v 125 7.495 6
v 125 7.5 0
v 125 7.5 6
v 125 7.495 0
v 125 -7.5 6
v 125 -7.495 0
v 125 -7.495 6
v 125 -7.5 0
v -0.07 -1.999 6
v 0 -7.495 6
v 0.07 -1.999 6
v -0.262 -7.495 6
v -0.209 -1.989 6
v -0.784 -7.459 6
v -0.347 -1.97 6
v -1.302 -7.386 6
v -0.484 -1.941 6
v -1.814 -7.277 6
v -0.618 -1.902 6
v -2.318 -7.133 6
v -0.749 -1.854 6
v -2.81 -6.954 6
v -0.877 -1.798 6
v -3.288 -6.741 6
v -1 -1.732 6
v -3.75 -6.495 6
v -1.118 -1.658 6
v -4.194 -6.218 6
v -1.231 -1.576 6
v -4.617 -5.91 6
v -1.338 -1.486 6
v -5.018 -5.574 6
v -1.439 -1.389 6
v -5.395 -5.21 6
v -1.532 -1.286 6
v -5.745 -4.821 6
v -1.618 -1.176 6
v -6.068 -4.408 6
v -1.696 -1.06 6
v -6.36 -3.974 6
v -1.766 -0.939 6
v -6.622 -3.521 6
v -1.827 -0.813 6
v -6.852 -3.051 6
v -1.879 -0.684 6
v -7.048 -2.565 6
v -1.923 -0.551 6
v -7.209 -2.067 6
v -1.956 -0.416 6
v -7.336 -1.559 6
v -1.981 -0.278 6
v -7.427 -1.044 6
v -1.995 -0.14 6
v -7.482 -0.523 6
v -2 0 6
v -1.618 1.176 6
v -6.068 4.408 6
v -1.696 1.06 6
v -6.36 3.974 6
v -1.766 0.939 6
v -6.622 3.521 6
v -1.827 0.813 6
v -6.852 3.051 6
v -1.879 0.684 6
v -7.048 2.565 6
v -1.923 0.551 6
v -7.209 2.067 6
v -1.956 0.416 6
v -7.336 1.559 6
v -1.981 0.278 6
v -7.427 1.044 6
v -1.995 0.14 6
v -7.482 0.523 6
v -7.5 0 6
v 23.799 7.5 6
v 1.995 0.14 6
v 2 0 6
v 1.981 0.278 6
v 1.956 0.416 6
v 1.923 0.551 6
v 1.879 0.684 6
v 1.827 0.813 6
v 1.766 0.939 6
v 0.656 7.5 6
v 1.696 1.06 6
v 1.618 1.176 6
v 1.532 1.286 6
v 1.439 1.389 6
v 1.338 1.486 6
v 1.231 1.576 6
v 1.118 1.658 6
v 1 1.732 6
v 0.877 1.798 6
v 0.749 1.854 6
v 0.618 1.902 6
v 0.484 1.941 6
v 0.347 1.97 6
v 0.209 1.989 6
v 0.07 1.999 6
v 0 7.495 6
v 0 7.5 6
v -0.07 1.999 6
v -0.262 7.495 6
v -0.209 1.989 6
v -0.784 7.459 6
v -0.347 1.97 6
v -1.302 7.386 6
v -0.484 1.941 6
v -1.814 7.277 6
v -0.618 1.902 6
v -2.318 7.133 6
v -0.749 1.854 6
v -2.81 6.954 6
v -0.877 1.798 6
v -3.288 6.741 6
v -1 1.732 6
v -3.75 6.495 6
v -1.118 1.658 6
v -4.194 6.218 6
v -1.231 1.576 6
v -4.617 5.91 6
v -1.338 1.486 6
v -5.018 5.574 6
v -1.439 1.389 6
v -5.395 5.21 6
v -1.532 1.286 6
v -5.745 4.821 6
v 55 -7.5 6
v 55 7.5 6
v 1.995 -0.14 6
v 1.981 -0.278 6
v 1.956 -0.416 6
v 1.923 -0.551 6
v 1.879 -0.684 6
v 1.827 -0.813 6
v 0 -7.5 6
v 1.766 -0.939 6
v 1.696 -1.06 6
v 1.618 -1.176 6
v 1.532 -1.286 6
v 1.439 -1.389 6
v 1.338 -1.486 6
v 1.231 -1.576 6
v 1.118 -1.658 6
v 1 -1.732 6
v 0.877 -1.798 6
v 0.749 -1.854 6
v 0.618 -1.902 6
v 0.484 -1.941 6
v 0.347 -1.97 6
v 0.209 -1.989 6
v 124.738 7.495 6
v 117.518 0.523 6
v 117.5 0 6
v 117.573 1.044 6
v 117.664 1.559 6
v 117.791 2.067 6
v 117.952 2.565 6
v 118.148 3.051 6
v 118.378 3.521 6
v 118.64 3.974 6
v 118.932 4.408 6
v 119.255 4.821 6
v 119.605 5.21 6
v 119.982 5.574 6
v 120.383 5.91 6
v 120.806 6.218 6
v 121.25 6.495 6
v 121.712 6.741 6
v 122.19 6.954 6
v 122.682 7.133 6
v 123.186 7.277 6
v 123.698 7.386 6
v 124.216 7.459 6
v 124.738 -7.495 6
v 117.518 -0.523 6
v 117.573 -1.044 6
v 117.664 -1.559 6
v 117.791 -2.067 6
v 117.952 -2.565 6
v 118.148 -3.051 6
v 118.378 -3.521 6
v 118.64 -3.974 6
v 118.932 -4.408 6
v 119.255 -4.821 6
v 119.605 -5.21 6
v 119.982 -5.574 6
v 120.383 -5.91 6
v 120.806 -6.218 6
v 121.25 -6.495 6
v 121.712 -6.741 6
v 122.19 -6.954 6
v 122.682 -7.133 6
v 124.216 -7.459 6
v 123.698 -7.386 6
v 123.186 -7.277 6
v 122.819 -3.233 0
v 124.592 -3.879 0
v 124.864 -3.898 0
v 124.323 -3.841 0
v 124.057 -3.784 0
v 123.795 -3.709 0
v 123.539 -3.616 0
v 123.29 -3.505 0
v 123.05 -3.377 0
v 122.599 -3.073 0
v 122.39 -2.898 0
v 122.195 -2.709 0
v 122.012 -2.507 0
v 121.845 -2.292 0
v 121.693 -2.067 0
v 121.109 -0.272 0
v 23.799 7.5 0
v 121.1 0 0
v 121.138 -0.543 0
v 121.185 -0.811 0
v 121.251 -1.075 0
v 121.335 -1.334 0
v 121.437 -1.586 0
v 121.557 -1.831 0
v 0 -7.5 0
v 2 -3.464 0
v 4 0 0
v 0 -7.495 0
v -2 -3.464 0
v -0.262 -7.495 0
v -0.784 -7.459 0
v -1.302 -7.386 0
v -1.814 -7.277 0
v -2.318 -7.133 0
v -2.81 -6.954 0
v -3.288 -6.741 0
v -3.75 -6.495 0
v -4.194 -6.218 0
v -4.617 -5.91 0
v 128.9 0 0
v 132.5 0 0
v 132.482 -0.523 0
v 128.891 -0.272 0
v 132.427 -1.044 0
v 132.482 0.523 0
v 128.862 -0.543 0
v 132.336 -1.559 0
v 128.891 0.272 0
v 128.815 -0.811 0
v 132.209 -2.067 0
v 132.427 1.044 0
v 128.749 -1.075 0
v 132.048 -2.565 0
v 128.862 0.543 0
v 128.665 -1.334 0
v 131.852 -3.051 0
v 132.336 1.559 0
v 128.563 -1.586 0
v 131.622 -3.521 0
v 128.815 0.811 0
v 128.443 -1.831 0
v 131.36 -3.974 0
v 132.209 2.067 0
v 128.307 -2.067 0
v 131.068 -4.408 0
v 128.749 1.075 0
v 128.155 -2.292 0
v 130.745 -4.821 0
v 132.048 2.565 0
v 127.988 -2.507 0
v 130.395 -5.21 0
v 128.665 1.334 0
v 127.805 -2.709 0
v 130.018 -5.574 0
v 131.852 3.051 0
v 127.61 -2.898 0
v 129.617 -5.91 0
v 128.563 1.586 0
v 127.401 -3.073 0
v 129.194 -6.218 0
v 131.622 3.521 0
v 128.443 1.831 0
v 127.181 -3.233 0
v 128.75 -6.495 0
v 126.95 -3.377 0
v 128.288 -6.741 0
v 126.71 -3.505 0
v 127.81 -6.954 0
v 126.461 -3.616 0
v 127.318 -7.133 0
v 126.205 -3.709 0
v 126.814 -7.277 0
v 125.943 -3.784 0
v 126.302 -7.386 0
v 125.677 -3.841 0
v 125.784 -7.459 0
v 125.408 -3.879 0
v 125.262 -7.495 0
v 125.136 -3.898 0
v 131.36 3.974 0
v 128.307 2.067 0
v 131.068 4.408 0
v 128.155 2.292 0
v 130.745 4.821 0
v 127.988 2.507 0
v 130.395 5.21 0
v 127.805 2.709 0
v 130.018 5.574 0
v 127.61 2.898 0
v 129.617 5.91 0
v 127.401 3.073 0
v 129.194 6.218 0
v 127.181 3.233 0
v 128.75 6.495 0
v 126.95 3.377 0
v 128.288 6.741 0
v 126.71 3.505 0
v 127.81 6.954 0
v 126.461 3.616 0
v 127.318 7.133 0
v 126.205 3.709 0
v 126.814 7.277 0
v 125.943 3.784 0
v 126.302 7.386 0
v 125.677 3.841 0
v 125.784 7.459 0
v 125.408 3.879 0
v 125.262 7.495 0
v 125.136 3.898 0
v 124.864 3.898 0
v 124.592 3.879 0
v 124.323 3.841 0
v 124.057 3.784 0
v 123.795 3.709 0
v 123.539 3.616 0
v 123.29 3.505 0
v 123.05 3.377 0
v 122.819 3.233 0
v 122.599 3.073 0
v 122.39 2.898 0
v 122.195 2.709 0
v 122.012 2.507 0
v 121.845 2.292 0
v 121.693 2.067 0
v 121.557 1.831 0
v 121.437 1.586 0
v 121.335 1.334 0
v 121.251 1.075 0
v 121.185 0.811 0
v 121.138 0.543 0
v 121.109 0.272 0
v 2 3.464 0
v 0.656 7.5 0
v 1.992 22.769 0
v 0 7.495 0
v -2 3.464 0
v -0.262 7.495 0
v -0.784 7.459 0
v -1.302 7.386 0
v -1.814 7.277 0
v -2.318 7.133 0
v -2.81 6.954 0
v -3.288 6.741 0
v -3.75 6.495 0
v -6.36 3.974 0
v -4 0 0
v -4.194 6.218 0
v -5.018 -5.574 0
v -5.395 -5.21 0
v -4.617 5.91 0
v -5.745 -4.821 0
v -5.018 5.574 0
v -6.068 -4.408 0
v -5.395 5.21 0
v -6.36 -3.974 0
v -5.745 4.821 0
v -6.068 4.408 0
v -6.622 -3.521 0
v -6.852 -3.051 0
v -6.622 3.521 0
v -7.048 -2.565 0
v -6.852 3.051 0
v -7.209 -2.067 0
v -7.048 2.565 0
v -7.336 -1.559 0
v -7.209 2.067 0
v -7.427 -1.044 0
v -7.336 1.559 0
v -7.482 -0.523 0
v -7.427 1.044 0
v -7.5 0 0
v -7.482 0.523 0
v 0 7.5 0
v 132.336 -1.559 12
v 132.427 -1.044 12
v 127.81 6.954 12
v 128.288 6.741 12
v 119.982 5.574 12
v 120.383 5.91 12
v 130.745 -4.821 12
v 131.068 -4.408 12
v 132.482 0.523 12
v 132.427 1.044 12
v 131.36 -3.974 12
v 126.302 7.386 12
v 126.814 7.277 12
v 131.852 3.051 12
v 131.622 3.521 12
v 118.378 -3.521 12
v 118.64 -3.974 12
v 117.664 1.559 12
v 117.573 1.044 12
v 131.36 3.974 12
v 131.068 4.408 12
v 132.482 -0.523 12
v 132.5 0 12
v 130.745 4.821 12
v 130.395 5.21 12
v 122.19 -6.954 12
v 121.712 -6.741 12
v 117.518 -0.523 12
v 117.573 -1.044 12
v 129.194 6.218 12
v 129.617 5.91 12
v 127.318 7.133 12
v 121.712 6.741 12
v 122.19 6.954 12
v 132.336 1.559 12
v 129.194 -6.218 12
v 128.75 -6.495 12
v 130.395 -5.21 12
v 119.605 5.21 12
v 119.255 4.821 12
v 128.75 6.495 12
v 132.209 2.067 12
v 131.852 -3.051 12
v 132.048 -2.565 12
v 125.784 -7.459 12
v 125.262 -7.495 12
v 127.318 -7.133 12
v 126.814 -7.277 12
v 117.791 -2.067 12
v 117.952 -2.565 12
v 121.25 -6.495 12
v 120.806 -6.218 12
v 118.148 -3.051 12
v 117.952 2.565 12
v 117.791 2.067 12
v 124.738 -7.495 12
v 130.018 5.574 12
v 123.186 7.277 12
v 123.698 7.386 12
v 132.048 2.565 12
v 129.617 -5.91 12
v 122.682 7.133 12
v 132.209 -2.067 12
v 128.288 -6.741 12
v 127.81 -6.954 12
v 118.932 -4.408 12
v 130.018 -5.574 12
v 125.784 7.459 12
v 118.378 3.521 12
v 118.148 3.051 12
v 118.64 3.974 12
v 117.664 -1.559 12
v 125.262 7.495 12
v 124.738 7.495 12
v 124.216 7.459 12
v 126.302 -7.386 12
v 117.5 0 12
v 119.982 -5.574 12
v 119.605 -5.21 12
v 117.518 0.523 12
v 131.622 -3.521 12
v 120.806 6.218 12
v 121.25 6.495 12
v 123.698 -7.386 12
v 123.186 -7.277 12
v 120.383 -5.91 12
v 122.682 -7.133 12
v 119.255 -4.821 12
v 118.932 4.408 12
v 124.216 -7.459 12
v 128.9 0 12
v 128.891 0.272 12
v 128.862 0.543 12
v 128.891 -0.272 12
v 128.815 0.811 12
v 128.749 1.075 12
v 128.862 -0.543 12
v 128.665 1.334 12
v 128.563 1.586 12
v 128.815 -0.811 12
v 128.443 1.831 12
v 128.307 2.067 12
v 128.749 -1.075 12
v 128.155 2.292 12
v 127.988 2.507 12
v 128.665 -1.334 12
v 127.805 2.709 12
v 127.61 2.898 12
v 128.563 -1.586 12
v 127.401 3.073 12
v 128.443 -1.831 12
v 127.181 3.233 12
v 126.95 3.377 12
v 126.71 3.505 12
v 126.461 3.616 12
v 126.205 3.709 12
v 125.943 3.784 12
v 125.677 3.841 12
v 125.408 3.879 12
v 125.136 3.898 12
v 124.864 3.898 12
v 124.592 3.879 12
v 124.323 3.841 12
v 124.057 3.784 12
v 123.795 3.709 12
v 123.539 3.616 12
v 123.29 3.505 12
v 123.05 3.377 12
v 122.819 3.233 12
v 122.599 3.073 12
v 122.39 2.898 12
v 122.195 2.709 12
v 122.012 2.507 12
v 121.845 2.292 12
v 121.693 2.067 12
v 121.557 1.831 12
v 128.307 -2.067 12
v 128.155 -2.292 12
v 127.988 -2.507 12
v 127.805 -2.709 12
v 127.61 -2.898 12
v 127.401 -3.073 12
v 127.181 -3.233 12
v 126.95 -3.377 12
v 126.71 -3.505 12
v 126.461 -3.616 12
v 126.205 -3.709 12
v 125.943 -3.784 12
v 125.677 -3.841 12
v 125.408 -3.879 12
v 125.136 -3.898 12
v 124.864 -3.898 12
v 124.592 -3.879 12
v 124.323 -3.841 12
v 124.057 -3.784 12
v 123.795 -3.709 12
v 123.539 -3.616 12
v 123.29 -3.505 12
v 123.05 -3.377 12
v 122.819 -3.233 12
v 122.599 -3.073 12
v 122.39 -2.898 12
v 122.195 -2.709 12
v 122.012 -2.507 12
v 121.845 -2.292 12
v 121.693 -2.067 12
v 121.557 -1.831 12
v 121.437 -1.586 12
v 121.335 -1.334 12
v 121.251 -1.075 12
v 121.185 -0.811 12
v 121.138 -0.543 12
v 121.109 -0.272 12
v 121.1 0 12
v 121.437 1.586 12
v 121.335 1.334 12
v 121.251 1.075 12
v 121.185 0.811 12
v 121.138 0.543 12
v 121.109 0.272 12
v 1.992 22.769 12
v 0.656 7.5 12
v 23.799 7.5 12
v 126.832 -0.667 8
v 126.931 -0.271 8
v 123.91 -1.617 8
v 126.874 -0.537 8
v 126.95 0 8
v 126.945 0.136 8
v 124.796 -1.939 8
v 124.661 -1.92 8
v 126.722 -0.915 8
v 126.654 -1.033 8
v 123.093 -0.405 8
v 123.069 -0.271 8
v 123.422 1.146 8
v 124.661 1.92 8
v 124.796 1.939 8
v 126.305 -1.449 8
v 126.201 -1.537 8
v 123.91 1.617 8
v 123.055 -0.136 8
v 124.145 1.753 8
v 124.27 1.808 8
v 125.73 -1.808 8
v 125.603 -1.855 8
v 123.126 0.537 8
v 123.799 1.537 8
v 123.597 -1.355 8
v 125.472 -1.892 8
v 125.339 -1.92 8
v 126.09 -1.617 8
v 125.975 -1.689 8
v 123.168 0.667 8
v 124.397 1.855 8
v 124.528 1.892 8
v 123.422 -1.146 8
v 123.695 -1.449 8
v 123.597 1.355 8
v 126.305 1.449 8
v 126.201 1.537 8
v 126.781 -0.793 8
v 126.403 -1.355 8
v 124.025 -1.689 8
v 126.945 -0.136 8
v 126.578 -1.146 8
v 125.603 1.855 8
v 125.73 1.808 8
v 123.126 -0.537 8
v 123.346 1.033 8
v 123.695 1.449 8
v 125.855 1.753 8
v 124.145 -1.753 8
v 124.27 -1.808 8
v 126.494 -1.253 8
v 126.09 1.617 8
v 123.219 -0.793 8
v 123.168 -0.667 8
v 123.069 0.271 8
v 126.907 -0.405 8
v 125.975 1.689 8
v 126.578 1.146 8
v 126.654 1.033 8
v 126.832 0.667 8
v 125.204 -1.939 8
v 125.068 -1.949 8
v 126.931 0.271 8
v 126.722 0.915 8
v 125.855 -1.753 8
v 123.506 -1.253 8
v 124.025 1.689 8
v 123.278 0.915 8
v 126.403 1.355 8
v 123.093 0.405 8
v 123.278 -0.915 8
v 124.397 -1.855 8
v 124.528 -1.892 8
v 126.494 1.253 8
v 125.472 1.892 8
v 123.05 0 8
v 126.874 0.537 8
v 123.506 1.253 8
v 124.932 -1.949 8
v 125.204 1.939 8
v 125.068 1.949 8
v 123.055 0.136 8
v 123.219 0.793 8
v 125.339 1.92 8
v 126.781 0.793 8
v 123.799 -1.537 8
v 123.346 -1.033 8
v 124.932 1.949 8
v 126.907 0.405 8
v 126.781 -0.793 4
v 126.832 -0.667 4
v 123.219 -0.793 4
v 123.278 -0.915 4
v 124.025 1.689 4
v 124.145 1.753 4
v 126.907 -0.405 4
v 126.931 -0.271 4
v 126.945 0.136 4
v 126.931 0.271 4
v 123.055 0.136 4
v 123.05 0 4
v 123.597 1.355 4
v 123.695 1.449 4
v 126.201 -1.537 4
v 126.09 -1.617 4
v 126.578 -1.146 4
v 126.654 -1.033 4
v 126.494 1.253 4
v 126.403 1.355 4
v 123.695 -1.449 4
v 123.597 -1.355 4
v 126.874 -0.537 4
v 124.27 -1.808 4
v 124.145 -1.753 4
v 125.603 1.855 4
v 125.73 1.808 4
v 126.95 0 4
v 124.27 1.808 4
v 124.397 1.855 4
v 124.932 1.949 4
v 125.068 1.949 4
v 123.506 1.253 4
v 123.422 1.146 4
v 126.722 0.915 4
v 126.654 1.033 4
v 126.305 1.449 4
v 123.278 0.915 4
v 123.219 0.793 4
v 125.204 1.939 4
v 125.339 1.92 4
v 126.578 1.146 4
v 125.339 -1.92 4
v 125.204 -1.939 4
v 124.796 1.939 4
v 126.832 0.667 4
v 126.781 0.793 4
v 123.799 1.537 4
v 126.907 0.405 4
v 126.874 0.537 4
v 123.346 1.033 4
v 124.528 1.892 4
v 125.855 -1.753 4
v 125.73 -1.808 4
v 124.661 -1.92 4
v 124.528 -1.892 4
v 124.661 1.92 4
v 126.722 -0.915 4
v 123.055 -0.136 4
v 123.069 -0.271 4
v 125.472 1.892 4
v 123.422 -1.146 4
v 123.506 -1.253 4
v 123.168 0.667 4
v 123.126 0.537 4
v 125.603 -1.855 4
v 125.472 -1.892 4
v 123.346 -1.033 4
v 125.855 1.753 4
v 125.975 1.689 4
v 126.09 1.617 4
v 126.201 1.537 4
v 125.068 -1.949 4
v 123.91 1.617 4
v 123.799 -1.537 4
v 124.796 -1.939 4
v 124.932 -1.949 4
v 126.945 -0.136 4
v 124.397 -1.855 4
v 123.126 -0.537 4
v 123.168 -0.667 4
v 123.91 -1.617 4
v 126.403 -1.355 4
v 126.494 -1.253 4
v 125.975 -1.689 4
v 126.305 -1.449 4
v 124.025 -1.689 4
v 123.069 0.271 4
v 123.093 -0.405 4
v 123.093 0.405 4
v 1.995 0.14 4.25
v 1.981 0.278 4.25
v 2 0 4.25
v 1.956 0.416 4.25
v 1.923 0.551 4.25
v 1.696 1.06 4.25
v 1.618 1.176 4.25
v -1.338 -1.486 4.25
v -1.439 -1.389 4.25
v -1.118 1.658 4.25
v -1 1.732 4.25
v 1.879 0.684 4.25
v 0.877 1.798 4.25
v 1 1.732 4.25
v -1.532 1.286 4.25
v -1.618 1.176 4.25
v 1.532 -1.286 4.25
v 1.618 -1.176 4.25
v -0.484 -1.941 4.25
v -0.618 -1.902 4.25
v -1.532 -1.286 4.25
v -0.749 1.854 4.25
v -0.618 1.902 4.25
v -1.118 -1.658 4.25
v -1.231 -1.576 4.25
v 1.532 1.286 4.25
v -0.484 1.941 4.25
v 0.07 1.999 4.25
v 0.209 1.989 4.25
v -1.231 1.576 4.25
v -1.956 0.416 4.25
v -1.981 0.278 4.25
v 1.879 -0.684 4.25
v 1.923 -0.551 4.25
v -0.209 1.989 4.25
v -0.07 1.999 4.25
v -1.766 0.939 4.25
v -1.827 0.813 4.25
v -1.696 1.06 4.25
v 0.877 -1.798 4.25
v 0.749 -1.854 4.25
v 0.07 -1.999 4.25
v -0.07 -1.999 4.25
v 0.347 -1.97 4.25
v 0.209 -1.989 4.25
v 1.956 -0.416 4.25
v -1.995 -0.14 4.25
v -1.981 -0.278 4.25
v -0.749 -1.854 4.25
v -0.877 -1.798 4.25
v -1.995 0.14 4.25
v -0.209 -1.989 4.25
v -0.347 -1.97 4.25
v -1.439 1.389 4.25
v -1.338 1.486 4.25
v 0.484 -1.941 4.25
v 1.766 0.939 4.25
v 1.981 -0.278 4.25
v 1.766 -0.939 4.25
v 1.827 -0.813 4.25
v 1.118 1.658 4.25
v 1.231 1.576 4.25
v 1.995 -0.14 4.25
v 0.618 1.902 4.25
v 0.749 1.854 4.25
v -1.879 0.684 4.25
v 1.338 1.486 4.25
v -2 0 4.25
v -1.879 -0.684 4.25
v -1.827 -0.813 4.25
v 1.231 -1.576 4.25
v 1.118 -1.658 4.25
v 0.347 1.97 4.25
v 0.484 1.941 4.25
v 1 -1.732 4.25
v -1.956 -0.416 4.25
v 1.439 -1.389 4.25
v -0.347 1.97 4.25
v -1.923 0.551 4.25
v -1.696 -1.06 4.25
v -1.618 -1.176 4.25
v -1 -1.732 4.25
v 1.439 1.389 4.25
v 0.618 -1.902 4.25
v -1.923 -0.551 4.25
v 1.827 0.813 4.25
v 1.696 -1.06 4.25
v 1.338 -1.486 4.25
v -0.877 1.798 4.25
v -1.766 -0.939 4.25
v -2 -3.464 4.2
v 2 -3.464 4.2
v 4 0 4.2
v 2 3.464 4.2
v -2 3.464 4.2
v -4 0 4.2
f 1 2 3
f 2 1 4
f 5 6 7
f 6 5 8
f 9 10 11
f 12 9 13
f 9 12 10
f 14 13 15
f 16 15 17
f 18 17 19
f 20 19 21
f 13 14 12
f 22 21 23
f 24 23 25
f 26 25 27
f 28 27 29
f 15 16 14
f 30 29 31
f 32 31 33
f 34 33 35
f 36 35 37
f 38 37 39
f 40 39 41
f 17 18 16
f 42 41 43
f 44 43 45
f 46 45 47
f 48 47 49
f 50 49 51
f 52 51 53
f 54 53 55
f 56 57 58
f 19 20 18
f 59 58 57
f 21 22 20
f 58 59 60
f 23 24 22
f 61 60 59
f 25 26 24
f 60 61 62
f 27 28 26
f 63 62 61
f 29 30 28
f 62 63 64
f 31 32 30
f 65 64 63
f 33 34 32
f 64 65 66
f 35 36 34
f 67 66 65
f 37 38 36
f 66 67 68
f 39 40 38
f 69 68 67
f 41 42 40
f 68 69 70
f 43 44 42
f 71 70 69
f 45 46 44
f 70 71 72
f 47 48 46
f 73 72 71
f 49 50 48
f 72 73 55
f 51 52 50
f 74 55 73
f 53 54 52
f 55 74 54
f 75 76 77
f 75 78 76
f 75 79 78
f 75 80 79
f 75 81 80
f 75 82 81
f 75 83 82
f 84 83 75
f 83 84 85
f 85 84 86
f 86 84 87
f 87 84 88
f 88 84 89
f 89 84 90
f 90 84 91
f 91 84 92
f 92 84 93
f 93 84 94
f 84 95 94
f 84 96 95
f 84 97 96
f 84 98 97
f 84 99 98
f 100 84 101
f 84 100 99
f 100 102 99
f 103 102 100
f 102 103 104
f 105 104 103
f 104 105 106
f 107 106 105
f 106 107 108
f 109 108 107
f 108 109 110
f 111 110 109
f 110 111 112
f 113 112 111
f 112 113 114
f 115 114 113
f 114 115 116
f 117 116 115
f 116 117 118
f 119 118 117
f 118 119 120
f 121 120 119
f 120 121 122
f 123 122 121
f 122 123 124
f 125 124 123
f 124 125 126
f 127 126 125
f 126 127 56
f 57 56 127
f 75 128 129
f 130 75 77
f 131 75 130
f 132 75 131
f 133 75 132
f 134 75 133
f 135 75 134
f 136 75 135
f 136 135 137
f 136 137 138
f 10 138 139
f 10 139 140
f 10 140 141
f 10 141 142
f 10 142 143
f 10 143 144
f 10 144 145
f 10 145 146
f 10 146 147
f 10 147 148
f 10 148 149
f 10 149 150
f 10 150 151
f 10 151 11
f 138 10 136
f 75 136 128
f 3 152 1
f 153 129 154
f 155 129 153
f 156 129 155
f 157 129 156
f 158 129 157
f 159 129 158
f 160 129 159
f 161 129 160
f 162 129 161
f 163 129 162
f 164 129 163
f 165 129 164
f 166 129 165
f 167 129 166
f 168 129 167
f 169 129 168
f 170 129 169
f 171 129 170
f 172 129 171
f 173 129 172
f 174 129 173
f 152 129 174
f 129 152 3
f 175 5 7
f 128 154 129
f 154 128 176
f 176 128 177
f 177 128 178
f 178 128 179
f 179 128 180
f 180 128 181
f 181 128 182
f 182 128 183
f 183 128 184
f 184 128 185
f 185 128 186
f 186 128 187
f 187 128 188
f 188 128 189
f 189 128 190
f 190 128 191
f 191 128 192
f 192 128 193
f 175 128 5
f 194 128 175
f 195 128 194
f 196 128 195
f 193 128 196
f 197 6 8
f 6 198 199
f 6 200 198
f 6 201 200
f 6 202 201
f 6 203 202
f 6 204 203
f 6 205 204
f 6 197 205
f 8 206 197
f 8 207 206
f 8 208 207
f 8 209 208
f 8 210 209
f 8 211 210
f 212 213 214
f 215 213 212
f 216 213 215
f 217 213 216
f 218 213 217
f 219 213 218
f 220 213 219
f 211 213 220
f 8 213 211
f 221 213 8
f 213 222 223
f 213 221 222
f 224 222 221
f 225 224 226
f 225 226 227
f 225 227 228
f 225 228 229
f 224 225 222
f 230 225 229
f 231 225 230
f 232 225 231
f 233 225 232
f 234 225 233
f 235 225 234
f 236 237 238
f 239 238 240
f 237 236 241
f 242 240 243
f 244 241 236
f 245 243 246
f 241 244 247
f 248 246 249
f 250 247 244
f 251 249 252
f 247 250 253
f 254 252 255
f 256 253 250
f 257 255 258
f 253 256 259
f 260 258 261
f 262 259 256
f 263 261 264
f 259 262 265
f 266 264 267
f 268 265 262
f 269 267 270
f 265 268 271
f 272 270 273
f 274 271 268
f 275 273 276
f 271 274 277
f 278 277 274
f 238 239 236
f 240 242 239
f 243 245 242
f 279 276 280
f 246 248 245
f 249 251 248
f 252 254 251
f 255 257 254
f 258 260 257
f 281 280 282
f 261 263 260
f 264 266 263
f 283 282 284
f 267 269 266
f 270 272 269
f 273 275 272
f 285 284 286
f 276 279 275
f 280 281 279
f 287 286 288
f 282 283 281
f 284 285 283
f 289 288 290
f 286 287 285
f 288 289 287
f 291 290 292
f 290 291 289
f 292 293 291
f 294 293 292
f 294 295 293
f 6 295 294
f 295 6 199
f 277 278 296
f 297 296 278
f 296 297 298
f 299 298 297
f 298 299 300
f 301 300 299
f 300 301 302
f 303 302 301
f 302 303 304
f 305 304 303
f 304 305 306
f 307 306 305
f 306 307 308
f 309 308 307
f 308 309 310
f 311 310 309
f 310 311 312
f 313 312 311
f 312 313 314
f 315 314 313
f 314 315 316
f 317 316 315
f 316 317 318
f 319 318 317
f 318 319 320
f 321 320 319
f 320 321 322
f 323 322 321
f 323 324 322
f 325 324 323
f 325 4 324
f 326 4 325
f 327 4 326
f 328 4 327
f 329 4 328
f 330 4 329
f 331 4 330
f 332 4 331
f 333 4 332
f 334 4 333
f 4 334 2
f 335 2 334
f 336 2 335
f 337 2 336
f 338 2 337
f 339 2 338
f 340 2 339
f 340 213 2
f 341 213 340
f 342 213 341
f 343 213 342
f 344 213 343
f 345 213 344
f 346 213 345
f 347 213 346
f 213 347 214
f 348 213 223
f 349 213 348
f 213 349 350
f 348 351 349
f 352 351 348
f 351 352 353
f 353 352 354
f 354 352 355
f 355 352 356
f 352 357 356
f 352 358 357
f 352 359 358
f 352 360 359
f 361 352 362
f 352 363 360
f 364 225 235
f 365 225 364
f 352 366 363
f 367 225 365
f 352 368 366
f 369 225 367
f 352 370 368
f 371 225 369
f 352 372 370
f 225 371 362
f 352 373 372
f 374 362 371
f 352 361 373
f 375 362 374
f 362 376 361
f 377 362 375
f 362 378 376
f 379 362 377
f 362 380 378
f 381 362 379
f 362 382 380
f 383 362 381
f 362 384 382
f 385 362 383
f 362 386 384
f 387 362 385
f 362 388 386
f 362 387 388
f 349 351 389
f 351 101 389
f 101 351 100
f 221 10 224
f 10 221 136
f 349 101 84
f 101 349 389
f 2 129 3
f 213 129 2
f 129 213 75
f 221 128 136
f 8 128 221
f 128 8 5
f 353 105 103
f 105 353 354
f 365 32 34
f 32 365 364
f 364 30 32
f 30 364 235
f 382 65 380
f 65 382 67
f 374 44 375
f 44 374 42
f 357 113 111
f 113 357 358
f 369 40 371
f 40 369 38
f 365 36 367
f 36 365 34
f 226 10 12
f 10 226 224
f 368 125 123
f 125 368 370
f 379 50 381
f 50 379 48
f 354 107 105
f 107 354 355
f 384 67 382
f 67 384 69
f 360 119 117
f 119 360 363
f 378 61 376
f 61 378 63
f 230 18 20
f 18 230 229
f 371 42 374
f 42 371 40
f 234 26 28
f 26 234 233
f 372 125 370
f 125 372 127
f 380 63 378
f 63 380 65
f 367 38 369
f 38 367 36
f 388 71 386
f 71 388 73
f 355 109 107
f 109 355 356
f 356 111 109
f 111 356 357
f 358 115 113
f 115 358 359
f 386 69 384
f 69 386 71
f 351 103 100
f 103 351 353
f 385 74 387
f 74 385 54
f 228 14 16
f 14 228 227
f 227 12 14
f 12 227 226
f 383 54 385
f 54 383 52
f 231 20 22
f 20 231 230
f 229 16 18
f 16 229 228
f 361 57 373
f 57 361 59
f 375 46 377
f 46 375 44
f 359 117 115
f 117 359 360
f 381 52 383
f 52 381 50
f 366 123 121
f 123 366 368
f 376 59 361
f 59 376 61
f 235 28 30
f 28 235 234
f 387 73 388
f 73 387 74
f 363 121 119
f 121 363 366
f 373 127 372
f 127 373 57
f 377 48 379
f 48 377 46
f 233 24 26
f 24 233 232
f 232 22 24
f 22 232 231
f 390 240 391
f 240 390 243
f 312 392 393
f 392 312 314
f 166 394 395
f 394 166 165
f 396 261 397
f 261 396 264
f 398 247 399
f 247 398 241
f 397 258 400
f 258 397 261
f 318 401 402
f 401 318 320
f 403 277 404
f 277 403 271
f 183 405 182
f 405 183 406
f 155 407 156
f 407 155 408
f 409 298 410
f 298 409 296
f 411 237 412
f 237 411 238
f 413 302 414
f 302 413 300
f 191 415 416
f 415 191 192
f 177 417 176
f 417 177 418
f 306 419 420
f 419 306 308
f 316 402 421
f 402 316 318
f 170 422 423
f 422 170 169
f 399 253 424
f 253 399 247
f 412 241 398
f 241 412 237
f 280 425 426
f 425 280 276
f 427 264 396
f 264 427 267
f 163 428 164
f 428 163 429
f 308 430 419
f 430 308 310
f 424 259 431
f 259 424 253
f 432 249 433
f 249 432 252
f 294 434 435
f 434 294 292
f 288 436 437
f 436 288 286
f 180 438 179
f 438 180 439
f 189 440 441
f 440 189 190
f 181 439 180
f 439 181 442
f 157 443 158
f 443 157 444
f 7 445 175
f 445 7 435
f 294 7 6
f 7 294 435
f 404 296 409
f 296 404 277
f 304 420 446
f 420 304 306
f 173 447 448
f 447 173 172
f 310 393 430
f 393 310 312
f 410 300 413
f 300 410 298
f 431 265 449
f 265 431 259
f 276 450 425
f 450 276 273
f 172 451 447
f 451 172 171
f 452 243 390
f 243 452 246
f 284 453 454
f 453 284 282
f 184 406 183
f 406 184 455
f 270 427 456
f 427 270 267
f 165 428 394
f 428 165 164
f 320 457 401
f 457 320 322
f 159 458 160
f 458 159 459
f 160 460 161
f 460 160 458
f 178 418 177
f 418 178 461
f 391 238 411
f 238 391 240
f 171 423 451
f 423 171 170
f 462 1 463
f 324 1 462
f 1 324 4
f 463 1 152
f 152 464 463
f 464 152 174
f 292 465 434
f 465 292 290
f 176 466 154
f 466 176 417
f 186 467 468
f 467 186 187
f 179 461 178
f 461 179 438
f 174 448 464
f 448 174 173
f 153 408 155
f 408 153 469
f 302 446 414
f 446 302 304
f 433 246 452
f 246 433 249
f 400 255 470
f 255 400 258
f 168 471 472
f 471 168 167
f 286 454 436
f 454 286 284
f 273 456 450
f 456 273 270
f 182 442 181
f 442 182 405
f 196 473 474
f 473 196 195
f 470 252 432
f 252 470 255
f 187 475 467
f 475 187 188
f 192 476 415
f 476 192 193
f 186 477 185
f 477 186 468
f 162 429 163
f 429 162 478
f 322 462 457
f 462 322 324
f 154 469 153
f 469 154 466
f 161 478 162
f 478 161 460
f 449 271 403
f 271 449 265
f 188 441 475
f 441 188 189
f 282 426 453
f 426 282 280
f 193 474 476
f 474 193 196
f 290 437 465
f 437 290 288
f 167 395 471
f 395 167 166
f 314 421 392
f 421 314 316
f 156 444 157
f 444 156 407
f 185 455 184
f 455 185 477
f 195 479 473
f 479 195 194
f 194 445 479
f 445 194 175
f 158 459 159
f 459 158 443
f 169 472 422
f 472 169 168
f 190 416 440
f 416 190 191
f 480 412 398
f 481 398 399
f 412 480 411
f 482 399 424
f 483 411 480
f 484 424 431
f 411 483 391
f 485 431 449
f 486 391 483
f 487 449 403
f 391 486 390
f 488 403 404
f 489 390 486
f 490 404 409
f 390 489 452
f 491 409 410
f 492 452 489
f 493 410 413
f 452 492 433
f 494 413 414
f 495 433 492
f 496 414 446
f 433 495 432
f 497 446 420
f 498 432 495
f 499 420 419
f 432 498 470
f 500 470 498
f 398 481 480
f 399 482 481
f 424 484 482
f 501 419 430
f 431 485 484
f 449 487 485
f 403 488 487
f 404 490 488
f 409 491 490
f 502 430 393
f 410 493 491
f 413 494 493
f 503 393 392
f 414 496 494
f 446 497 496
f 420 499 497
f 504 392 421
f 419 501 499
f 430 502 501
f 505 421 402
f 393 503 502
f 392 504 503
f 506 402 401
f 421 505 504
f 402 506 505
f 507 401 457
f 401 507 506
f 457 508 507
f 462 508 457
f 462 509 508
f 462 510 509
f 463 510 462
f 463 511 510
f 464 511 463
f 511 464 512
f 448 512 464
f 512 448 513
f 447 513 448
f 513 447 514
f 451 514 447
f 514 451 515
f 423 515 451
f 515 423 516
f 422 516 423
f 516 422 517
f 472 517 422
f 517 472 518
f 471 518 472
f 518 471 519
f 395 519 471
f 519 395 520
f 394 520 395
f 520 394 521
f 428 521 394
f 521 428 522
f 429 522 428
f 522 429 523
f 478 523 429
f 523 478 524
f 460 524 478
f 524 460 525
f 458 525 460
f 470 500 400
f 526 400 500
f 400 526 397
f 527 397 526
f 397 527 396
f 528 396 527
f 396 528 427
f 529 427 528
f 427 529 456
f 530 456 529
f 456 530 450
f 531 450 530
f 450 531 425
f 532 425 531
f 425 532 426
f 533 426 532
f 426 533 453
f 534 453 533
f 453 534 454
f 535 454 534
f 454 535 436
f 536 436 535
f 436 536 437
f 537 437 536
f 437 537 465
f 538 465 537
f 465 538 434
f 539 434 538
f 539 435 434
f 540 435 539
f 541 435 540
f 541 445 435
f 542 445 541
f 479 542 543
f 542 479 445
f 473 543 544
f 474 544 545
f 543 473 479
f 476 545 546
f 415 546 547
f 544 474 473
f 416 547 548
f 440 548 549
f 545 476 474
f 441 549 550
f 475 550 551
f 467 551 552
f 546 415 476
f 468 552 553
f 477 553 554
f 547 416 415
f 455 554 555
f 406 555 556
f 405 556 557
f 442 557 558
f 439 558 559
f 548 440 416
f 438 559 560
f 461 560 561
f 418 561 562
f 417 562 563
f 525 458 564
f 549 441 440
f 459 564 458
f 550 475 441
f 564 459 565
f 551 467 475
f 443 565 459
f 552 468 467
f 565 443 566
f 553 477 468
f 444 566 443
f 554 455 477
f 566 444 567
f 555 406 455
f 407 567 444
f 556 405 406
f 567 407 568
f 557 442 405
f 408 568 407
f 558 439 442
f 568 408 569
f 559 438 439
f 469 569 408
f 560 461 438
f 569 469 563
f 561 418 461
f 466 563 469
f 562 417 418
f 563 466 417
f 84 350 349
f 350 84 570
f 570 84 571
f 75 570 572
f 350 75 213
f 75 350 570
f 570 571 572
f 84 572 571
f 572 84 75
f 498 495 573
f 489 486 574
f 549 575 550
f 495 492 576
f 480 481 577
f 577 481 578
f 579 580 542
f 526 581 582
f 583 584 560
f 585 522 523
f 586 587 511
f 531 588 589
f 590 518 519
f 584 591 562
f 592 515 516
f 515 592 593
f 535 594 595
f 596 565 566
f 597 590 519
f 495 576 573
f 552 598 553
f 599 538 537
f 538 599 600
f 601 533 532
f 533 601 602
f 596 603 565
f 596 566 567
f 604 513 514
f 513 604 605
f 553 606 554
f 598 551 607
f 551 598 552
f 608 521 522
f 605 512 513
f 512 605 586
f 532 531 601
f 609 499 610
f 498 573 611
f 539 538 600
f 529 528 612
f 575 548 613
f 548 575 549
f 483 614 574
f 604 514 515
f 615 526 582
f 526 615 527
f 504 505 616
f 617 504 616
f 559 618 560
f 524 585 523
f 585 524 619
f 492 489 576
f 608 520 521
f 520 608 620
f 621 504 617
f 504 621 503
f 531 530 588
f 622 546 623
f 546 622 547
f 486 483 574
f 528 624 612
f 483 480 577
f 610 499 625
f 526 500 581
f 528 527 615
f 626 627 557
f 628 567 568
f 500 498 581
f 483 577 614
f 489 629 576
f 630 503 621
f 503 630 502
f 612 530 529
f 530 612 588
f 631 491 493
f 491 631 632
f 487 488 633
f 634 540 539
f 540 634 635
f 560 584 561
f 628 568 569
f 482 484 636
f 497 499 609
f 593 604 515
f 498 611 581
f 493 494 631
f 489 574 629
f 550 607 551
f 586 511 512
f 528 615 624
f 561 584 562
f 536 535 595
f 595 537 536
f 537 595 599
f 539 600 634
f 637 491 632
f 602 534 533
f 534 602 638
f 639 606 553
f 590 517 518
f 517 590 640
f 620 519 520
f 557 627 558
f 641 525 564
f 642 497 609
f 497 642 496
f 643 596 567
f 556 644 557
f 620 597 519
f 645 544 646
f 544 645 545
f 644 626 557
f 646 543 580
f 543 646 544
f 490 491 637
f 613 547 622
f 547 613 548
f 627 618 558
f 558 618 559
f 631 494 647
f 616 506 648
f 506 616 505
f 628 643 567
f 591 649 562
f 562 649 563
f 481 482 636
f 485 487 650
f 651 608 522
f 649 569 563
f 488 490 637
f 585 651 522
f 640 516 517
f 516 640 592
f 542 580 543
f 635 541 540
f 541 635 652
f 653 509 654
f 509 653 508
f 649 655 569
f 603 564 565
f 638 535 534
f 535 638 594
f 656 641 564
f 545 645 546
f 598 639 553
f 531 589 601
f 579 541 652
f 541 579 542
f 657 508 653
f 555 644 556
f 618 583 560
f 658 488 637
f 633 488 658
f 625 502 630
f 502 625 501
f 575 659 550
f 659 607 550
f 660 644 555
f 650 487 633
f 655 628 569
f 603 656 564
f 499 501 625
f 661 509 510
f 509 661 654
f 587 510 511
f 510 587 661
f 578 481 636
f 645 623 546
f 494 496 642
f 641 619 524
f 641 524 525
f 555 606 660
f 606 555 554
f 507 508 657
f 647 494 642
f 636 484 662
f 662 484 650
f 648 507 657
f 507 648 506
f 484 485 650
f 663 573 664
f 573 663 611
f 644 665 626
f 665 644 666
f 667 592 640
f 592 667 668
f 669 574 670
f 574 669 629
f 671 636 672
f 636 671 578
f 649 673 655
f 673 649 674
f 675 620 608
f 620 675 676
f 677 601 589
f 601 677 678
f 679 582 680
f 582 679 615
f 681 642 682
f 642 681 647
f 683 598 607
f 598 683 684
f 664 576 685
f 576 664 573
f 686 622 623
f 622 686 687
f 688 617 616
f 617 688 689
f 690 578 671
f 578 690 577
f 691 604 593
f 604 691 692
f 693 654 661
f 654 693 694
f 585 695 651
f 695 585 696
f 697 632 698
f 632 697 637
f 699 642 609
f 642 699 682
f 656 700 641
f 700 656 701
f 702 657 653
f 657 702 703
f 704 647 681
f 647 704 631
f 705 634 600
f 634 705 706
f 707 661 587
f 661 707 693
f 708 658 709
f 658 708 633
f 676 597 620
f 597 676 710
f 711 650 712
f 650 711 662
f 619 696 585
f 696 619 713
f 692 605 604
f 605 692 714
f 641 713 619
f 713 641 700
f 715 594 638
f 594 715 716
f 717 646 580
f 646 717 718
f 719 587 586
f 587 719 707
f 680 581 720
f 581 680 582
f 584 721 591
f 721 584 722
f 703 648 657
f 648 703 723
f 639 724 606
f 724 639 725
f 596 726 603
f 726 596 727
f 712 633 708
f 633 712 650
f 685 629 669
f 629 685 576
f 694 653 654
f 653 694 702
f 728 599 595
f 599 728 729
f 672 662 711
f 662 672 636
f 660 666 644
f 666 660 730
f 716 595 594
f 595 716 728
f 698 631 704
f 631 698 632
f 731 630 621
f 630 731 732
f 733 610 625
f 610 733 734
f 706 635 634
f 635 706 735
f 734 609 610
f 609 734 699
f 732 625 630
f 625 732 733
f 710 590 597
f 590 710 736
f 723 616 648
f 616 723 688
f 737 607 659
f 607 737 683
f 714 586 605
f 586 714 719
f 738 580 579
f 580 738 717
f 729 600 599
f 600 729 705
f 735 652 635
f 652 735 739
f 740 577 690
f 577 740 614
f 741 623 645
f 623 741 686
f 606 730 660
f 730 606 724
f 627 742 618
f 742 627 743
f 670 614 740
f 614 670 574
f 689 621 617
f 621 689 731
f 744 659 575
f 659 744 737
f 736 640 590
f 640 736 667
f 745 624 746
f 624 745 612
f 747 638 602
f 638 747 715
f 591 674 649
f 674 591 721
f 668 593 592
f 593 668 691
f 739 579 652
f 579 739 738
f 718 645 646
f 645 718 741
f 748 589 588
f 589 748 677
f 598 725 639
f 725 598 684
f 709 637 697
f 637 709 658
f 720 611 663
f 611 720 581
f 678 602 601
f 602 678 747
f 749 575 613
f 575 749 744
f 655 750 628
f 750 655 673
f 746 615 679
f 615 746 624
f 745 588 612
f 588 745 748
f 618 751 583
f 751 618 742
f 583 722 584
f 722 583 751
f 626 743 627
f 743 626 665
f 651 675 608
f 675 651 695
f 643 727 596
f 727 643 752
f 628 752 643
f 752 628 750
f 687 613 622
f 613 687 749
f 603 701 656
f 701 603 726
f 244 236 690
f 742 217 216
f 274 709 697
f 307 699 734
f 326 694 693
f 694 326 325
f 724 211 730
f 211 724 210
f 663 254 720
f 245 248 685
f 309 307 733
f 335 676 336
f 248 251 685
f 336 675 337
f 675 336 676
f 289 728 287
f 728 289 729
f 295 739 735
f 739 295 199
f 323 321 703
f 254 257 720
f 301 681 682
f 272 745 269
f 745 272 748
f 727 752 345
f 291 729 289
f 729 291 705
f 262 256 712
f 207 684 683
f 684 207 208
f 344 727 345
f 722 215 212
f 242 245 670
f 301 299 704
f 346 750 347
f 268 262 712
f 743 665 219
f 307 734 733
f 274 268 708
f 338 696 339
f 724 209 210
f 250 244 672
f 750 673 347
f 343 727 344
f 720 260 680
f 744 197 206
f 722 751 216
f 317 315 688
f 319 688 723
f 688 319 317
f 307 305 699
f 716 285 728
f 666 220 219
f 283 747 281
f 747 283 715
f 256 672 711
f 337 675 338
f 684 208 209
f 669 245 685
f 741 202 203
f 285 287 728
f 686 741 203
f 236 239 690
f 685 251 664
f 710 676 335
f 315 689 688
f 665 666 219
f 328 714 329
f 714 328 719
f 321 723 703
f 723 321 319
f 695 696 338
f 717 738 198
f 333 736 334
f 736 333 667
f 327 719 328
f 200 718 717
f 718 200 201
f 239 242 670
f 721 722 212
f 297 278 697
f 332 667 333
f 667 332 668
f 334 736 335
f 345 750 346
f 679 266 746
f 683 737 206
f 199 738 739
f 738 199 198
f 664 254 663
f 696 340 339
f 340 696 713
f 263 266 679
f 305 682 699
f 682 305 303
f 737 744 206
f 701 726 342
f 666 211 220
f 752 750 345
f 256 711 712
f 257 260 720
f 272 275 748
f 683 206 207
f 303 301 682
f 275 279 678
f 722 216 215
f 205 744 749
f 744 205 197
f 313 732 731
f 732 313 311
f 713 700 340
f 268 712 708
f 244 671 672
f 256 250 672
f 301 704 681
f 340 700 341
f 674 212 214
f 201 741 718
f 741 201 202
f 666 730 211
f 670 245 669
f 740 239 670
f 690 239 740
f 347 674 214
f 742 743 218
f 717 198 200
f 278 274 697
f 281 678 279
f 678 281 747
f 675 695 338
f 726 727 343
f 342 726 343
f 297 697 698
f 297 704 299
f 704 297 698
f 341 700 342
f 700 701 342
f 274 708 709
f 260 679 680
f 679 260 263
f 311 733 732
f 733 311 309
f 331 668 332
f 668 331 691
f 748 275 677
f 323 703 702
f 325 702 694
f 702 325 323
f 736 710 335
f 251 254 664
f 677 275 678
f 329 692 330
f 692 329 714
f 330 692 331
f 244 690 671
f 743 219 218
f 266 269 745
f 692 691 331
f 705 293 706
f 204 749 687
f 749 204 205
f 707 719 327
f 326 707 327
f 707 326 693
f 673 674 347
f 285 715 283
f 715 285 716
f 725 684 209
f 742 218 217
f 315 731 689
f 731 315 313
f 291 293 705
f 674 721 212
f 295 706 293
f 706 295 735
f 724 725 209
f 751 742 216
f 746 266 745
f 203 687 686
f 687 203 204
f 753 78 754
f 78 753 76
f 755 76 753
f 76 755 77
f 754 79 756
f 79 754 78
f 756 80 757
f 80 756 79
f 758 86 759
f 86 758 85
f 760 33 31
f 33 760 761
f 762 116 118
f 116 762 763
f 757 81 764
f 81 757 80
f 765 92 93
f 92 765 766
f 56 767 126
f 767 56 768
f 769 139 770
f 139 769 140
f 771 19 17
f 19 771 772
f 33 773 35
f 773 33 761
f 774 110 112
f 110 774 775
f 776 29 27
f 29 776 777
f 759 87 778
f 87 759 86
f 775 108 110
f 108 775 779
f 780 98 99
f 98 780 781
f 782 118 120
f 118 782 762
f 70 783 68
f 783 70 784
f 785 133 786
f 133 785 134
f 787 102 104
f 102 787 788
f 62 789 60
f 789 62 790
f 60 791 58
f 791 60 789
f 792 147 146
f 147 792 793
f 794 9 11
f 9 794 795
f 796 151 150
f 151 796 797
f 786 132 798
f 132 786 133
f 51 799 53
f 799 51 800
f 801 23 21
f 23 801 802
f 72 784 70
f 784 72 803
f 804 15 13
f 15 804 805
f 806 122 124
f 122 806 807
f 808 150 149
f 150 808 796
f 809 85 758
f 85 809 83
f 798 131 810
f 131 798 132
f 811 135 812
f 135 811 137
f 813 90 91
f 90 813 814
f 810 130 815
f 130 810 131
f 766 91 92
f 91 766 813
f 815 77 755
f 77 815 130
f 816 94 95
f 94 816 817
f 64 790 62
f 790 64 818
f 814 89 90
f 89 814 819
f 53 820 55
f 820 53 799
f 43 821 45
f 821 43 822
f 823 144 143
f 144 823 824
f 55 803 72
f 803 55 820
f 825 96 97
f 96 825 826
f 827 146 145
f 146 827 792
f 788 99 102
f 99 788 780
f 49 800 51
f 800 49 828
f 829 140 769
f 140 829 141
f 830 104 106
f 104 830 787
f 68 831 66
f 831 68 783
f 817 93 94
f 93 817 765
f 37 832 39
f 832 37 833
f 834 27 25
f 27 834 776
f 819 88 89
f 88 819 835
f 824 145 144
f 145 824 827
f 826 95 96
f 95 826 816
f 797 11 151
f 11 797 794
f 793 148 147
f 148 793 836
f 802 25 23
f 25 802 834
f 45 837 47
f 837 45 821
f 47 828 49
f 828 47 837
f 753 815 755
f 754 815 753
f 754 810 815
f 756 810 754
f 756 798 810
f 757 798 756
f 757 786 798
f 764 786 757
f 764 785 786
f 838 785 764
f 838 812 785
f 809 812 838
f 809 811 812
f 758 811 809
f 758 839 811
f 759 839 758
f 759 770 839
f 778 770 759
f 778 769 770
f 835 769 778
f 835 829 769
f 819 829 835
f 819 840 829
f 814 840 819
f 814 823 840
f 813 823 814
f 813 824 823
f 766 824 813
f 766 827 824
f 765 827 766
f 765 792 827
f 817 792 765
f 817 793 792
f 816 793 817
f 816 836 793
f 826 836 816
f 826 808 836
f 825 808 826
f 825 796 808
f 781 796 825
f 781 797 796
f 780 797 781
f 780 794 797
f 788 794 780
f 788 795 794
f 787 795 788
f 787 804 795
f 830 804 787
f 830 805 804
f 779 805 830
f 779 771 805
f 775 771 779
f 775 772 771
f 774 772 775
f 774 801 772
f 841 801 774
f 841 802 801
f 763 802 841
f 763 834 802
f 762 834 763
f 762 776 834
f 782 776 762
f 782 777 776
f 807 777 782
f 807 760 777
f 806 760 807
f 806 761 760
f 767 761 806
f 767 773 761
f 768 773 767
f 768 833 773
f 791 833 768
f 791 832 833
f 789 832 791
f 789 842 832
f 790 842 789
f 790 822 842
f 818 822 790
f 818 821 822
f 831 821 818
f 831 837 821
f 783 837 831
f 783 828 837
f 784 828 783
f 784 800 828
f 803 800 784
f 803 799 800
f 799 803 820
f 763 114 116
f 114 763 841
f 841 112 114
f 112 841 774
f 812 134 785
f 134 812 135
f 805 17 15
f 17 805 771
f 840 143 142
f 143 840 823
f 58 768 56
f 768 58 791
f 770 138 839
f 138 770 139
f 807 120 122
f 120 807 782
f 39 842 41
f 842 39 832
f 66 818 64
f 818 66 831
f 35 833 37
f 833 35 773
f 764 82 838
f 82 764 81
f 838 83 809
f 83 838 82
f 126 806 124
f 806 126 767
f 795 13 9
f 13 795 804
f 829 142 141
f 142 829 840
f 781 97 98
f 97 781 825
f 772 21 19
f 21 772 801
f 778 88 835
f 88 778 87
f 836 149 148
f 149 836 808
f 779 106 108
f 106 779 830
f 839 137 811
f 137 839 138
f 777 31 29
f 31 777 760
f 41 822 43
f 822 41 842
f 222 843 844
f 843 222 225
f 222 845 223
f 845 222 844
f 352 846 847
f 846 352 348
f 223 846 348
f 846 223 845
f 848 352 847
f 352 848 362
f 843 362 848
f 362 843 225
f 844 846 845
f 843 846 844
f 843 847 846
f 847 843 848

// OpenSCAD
$fn = 90;
length = 125;
width = 15;
thickness = 12;


difference(){
	union(){
		translate([0, -width/2, 0])
			cube([length, width, thickness/2]);
		cylinder(d=width, h=thickness/2);
		translate([length, 0, 0])
			cylinder(d=width, h=thickness);
		rotate([0, 0, -5])
			translate([8, 9, 0])
				cylinder(d=32, h=thickness, $fn=3);
	}	
	translate([-width/2, -width/2, thickness/2])
		#cube([length/2, width, thickness/2]);

	translate([length, 0, 8])
		#cylinder(d1=3.9, d2=7.8, h=4);
	translate([length, 0, 0])
		#cylinder(d=3.9, h=thickness);
	translate([length, 0, 0])
		#cylinder(d1=7.8, d2=3.9, h=4);
	
	translate([0, 0, 4.2+0.05])
		#cylinder(d=4, h=thickness);
	#cylinder(d=8, h=4.2, $fn=6);
}
